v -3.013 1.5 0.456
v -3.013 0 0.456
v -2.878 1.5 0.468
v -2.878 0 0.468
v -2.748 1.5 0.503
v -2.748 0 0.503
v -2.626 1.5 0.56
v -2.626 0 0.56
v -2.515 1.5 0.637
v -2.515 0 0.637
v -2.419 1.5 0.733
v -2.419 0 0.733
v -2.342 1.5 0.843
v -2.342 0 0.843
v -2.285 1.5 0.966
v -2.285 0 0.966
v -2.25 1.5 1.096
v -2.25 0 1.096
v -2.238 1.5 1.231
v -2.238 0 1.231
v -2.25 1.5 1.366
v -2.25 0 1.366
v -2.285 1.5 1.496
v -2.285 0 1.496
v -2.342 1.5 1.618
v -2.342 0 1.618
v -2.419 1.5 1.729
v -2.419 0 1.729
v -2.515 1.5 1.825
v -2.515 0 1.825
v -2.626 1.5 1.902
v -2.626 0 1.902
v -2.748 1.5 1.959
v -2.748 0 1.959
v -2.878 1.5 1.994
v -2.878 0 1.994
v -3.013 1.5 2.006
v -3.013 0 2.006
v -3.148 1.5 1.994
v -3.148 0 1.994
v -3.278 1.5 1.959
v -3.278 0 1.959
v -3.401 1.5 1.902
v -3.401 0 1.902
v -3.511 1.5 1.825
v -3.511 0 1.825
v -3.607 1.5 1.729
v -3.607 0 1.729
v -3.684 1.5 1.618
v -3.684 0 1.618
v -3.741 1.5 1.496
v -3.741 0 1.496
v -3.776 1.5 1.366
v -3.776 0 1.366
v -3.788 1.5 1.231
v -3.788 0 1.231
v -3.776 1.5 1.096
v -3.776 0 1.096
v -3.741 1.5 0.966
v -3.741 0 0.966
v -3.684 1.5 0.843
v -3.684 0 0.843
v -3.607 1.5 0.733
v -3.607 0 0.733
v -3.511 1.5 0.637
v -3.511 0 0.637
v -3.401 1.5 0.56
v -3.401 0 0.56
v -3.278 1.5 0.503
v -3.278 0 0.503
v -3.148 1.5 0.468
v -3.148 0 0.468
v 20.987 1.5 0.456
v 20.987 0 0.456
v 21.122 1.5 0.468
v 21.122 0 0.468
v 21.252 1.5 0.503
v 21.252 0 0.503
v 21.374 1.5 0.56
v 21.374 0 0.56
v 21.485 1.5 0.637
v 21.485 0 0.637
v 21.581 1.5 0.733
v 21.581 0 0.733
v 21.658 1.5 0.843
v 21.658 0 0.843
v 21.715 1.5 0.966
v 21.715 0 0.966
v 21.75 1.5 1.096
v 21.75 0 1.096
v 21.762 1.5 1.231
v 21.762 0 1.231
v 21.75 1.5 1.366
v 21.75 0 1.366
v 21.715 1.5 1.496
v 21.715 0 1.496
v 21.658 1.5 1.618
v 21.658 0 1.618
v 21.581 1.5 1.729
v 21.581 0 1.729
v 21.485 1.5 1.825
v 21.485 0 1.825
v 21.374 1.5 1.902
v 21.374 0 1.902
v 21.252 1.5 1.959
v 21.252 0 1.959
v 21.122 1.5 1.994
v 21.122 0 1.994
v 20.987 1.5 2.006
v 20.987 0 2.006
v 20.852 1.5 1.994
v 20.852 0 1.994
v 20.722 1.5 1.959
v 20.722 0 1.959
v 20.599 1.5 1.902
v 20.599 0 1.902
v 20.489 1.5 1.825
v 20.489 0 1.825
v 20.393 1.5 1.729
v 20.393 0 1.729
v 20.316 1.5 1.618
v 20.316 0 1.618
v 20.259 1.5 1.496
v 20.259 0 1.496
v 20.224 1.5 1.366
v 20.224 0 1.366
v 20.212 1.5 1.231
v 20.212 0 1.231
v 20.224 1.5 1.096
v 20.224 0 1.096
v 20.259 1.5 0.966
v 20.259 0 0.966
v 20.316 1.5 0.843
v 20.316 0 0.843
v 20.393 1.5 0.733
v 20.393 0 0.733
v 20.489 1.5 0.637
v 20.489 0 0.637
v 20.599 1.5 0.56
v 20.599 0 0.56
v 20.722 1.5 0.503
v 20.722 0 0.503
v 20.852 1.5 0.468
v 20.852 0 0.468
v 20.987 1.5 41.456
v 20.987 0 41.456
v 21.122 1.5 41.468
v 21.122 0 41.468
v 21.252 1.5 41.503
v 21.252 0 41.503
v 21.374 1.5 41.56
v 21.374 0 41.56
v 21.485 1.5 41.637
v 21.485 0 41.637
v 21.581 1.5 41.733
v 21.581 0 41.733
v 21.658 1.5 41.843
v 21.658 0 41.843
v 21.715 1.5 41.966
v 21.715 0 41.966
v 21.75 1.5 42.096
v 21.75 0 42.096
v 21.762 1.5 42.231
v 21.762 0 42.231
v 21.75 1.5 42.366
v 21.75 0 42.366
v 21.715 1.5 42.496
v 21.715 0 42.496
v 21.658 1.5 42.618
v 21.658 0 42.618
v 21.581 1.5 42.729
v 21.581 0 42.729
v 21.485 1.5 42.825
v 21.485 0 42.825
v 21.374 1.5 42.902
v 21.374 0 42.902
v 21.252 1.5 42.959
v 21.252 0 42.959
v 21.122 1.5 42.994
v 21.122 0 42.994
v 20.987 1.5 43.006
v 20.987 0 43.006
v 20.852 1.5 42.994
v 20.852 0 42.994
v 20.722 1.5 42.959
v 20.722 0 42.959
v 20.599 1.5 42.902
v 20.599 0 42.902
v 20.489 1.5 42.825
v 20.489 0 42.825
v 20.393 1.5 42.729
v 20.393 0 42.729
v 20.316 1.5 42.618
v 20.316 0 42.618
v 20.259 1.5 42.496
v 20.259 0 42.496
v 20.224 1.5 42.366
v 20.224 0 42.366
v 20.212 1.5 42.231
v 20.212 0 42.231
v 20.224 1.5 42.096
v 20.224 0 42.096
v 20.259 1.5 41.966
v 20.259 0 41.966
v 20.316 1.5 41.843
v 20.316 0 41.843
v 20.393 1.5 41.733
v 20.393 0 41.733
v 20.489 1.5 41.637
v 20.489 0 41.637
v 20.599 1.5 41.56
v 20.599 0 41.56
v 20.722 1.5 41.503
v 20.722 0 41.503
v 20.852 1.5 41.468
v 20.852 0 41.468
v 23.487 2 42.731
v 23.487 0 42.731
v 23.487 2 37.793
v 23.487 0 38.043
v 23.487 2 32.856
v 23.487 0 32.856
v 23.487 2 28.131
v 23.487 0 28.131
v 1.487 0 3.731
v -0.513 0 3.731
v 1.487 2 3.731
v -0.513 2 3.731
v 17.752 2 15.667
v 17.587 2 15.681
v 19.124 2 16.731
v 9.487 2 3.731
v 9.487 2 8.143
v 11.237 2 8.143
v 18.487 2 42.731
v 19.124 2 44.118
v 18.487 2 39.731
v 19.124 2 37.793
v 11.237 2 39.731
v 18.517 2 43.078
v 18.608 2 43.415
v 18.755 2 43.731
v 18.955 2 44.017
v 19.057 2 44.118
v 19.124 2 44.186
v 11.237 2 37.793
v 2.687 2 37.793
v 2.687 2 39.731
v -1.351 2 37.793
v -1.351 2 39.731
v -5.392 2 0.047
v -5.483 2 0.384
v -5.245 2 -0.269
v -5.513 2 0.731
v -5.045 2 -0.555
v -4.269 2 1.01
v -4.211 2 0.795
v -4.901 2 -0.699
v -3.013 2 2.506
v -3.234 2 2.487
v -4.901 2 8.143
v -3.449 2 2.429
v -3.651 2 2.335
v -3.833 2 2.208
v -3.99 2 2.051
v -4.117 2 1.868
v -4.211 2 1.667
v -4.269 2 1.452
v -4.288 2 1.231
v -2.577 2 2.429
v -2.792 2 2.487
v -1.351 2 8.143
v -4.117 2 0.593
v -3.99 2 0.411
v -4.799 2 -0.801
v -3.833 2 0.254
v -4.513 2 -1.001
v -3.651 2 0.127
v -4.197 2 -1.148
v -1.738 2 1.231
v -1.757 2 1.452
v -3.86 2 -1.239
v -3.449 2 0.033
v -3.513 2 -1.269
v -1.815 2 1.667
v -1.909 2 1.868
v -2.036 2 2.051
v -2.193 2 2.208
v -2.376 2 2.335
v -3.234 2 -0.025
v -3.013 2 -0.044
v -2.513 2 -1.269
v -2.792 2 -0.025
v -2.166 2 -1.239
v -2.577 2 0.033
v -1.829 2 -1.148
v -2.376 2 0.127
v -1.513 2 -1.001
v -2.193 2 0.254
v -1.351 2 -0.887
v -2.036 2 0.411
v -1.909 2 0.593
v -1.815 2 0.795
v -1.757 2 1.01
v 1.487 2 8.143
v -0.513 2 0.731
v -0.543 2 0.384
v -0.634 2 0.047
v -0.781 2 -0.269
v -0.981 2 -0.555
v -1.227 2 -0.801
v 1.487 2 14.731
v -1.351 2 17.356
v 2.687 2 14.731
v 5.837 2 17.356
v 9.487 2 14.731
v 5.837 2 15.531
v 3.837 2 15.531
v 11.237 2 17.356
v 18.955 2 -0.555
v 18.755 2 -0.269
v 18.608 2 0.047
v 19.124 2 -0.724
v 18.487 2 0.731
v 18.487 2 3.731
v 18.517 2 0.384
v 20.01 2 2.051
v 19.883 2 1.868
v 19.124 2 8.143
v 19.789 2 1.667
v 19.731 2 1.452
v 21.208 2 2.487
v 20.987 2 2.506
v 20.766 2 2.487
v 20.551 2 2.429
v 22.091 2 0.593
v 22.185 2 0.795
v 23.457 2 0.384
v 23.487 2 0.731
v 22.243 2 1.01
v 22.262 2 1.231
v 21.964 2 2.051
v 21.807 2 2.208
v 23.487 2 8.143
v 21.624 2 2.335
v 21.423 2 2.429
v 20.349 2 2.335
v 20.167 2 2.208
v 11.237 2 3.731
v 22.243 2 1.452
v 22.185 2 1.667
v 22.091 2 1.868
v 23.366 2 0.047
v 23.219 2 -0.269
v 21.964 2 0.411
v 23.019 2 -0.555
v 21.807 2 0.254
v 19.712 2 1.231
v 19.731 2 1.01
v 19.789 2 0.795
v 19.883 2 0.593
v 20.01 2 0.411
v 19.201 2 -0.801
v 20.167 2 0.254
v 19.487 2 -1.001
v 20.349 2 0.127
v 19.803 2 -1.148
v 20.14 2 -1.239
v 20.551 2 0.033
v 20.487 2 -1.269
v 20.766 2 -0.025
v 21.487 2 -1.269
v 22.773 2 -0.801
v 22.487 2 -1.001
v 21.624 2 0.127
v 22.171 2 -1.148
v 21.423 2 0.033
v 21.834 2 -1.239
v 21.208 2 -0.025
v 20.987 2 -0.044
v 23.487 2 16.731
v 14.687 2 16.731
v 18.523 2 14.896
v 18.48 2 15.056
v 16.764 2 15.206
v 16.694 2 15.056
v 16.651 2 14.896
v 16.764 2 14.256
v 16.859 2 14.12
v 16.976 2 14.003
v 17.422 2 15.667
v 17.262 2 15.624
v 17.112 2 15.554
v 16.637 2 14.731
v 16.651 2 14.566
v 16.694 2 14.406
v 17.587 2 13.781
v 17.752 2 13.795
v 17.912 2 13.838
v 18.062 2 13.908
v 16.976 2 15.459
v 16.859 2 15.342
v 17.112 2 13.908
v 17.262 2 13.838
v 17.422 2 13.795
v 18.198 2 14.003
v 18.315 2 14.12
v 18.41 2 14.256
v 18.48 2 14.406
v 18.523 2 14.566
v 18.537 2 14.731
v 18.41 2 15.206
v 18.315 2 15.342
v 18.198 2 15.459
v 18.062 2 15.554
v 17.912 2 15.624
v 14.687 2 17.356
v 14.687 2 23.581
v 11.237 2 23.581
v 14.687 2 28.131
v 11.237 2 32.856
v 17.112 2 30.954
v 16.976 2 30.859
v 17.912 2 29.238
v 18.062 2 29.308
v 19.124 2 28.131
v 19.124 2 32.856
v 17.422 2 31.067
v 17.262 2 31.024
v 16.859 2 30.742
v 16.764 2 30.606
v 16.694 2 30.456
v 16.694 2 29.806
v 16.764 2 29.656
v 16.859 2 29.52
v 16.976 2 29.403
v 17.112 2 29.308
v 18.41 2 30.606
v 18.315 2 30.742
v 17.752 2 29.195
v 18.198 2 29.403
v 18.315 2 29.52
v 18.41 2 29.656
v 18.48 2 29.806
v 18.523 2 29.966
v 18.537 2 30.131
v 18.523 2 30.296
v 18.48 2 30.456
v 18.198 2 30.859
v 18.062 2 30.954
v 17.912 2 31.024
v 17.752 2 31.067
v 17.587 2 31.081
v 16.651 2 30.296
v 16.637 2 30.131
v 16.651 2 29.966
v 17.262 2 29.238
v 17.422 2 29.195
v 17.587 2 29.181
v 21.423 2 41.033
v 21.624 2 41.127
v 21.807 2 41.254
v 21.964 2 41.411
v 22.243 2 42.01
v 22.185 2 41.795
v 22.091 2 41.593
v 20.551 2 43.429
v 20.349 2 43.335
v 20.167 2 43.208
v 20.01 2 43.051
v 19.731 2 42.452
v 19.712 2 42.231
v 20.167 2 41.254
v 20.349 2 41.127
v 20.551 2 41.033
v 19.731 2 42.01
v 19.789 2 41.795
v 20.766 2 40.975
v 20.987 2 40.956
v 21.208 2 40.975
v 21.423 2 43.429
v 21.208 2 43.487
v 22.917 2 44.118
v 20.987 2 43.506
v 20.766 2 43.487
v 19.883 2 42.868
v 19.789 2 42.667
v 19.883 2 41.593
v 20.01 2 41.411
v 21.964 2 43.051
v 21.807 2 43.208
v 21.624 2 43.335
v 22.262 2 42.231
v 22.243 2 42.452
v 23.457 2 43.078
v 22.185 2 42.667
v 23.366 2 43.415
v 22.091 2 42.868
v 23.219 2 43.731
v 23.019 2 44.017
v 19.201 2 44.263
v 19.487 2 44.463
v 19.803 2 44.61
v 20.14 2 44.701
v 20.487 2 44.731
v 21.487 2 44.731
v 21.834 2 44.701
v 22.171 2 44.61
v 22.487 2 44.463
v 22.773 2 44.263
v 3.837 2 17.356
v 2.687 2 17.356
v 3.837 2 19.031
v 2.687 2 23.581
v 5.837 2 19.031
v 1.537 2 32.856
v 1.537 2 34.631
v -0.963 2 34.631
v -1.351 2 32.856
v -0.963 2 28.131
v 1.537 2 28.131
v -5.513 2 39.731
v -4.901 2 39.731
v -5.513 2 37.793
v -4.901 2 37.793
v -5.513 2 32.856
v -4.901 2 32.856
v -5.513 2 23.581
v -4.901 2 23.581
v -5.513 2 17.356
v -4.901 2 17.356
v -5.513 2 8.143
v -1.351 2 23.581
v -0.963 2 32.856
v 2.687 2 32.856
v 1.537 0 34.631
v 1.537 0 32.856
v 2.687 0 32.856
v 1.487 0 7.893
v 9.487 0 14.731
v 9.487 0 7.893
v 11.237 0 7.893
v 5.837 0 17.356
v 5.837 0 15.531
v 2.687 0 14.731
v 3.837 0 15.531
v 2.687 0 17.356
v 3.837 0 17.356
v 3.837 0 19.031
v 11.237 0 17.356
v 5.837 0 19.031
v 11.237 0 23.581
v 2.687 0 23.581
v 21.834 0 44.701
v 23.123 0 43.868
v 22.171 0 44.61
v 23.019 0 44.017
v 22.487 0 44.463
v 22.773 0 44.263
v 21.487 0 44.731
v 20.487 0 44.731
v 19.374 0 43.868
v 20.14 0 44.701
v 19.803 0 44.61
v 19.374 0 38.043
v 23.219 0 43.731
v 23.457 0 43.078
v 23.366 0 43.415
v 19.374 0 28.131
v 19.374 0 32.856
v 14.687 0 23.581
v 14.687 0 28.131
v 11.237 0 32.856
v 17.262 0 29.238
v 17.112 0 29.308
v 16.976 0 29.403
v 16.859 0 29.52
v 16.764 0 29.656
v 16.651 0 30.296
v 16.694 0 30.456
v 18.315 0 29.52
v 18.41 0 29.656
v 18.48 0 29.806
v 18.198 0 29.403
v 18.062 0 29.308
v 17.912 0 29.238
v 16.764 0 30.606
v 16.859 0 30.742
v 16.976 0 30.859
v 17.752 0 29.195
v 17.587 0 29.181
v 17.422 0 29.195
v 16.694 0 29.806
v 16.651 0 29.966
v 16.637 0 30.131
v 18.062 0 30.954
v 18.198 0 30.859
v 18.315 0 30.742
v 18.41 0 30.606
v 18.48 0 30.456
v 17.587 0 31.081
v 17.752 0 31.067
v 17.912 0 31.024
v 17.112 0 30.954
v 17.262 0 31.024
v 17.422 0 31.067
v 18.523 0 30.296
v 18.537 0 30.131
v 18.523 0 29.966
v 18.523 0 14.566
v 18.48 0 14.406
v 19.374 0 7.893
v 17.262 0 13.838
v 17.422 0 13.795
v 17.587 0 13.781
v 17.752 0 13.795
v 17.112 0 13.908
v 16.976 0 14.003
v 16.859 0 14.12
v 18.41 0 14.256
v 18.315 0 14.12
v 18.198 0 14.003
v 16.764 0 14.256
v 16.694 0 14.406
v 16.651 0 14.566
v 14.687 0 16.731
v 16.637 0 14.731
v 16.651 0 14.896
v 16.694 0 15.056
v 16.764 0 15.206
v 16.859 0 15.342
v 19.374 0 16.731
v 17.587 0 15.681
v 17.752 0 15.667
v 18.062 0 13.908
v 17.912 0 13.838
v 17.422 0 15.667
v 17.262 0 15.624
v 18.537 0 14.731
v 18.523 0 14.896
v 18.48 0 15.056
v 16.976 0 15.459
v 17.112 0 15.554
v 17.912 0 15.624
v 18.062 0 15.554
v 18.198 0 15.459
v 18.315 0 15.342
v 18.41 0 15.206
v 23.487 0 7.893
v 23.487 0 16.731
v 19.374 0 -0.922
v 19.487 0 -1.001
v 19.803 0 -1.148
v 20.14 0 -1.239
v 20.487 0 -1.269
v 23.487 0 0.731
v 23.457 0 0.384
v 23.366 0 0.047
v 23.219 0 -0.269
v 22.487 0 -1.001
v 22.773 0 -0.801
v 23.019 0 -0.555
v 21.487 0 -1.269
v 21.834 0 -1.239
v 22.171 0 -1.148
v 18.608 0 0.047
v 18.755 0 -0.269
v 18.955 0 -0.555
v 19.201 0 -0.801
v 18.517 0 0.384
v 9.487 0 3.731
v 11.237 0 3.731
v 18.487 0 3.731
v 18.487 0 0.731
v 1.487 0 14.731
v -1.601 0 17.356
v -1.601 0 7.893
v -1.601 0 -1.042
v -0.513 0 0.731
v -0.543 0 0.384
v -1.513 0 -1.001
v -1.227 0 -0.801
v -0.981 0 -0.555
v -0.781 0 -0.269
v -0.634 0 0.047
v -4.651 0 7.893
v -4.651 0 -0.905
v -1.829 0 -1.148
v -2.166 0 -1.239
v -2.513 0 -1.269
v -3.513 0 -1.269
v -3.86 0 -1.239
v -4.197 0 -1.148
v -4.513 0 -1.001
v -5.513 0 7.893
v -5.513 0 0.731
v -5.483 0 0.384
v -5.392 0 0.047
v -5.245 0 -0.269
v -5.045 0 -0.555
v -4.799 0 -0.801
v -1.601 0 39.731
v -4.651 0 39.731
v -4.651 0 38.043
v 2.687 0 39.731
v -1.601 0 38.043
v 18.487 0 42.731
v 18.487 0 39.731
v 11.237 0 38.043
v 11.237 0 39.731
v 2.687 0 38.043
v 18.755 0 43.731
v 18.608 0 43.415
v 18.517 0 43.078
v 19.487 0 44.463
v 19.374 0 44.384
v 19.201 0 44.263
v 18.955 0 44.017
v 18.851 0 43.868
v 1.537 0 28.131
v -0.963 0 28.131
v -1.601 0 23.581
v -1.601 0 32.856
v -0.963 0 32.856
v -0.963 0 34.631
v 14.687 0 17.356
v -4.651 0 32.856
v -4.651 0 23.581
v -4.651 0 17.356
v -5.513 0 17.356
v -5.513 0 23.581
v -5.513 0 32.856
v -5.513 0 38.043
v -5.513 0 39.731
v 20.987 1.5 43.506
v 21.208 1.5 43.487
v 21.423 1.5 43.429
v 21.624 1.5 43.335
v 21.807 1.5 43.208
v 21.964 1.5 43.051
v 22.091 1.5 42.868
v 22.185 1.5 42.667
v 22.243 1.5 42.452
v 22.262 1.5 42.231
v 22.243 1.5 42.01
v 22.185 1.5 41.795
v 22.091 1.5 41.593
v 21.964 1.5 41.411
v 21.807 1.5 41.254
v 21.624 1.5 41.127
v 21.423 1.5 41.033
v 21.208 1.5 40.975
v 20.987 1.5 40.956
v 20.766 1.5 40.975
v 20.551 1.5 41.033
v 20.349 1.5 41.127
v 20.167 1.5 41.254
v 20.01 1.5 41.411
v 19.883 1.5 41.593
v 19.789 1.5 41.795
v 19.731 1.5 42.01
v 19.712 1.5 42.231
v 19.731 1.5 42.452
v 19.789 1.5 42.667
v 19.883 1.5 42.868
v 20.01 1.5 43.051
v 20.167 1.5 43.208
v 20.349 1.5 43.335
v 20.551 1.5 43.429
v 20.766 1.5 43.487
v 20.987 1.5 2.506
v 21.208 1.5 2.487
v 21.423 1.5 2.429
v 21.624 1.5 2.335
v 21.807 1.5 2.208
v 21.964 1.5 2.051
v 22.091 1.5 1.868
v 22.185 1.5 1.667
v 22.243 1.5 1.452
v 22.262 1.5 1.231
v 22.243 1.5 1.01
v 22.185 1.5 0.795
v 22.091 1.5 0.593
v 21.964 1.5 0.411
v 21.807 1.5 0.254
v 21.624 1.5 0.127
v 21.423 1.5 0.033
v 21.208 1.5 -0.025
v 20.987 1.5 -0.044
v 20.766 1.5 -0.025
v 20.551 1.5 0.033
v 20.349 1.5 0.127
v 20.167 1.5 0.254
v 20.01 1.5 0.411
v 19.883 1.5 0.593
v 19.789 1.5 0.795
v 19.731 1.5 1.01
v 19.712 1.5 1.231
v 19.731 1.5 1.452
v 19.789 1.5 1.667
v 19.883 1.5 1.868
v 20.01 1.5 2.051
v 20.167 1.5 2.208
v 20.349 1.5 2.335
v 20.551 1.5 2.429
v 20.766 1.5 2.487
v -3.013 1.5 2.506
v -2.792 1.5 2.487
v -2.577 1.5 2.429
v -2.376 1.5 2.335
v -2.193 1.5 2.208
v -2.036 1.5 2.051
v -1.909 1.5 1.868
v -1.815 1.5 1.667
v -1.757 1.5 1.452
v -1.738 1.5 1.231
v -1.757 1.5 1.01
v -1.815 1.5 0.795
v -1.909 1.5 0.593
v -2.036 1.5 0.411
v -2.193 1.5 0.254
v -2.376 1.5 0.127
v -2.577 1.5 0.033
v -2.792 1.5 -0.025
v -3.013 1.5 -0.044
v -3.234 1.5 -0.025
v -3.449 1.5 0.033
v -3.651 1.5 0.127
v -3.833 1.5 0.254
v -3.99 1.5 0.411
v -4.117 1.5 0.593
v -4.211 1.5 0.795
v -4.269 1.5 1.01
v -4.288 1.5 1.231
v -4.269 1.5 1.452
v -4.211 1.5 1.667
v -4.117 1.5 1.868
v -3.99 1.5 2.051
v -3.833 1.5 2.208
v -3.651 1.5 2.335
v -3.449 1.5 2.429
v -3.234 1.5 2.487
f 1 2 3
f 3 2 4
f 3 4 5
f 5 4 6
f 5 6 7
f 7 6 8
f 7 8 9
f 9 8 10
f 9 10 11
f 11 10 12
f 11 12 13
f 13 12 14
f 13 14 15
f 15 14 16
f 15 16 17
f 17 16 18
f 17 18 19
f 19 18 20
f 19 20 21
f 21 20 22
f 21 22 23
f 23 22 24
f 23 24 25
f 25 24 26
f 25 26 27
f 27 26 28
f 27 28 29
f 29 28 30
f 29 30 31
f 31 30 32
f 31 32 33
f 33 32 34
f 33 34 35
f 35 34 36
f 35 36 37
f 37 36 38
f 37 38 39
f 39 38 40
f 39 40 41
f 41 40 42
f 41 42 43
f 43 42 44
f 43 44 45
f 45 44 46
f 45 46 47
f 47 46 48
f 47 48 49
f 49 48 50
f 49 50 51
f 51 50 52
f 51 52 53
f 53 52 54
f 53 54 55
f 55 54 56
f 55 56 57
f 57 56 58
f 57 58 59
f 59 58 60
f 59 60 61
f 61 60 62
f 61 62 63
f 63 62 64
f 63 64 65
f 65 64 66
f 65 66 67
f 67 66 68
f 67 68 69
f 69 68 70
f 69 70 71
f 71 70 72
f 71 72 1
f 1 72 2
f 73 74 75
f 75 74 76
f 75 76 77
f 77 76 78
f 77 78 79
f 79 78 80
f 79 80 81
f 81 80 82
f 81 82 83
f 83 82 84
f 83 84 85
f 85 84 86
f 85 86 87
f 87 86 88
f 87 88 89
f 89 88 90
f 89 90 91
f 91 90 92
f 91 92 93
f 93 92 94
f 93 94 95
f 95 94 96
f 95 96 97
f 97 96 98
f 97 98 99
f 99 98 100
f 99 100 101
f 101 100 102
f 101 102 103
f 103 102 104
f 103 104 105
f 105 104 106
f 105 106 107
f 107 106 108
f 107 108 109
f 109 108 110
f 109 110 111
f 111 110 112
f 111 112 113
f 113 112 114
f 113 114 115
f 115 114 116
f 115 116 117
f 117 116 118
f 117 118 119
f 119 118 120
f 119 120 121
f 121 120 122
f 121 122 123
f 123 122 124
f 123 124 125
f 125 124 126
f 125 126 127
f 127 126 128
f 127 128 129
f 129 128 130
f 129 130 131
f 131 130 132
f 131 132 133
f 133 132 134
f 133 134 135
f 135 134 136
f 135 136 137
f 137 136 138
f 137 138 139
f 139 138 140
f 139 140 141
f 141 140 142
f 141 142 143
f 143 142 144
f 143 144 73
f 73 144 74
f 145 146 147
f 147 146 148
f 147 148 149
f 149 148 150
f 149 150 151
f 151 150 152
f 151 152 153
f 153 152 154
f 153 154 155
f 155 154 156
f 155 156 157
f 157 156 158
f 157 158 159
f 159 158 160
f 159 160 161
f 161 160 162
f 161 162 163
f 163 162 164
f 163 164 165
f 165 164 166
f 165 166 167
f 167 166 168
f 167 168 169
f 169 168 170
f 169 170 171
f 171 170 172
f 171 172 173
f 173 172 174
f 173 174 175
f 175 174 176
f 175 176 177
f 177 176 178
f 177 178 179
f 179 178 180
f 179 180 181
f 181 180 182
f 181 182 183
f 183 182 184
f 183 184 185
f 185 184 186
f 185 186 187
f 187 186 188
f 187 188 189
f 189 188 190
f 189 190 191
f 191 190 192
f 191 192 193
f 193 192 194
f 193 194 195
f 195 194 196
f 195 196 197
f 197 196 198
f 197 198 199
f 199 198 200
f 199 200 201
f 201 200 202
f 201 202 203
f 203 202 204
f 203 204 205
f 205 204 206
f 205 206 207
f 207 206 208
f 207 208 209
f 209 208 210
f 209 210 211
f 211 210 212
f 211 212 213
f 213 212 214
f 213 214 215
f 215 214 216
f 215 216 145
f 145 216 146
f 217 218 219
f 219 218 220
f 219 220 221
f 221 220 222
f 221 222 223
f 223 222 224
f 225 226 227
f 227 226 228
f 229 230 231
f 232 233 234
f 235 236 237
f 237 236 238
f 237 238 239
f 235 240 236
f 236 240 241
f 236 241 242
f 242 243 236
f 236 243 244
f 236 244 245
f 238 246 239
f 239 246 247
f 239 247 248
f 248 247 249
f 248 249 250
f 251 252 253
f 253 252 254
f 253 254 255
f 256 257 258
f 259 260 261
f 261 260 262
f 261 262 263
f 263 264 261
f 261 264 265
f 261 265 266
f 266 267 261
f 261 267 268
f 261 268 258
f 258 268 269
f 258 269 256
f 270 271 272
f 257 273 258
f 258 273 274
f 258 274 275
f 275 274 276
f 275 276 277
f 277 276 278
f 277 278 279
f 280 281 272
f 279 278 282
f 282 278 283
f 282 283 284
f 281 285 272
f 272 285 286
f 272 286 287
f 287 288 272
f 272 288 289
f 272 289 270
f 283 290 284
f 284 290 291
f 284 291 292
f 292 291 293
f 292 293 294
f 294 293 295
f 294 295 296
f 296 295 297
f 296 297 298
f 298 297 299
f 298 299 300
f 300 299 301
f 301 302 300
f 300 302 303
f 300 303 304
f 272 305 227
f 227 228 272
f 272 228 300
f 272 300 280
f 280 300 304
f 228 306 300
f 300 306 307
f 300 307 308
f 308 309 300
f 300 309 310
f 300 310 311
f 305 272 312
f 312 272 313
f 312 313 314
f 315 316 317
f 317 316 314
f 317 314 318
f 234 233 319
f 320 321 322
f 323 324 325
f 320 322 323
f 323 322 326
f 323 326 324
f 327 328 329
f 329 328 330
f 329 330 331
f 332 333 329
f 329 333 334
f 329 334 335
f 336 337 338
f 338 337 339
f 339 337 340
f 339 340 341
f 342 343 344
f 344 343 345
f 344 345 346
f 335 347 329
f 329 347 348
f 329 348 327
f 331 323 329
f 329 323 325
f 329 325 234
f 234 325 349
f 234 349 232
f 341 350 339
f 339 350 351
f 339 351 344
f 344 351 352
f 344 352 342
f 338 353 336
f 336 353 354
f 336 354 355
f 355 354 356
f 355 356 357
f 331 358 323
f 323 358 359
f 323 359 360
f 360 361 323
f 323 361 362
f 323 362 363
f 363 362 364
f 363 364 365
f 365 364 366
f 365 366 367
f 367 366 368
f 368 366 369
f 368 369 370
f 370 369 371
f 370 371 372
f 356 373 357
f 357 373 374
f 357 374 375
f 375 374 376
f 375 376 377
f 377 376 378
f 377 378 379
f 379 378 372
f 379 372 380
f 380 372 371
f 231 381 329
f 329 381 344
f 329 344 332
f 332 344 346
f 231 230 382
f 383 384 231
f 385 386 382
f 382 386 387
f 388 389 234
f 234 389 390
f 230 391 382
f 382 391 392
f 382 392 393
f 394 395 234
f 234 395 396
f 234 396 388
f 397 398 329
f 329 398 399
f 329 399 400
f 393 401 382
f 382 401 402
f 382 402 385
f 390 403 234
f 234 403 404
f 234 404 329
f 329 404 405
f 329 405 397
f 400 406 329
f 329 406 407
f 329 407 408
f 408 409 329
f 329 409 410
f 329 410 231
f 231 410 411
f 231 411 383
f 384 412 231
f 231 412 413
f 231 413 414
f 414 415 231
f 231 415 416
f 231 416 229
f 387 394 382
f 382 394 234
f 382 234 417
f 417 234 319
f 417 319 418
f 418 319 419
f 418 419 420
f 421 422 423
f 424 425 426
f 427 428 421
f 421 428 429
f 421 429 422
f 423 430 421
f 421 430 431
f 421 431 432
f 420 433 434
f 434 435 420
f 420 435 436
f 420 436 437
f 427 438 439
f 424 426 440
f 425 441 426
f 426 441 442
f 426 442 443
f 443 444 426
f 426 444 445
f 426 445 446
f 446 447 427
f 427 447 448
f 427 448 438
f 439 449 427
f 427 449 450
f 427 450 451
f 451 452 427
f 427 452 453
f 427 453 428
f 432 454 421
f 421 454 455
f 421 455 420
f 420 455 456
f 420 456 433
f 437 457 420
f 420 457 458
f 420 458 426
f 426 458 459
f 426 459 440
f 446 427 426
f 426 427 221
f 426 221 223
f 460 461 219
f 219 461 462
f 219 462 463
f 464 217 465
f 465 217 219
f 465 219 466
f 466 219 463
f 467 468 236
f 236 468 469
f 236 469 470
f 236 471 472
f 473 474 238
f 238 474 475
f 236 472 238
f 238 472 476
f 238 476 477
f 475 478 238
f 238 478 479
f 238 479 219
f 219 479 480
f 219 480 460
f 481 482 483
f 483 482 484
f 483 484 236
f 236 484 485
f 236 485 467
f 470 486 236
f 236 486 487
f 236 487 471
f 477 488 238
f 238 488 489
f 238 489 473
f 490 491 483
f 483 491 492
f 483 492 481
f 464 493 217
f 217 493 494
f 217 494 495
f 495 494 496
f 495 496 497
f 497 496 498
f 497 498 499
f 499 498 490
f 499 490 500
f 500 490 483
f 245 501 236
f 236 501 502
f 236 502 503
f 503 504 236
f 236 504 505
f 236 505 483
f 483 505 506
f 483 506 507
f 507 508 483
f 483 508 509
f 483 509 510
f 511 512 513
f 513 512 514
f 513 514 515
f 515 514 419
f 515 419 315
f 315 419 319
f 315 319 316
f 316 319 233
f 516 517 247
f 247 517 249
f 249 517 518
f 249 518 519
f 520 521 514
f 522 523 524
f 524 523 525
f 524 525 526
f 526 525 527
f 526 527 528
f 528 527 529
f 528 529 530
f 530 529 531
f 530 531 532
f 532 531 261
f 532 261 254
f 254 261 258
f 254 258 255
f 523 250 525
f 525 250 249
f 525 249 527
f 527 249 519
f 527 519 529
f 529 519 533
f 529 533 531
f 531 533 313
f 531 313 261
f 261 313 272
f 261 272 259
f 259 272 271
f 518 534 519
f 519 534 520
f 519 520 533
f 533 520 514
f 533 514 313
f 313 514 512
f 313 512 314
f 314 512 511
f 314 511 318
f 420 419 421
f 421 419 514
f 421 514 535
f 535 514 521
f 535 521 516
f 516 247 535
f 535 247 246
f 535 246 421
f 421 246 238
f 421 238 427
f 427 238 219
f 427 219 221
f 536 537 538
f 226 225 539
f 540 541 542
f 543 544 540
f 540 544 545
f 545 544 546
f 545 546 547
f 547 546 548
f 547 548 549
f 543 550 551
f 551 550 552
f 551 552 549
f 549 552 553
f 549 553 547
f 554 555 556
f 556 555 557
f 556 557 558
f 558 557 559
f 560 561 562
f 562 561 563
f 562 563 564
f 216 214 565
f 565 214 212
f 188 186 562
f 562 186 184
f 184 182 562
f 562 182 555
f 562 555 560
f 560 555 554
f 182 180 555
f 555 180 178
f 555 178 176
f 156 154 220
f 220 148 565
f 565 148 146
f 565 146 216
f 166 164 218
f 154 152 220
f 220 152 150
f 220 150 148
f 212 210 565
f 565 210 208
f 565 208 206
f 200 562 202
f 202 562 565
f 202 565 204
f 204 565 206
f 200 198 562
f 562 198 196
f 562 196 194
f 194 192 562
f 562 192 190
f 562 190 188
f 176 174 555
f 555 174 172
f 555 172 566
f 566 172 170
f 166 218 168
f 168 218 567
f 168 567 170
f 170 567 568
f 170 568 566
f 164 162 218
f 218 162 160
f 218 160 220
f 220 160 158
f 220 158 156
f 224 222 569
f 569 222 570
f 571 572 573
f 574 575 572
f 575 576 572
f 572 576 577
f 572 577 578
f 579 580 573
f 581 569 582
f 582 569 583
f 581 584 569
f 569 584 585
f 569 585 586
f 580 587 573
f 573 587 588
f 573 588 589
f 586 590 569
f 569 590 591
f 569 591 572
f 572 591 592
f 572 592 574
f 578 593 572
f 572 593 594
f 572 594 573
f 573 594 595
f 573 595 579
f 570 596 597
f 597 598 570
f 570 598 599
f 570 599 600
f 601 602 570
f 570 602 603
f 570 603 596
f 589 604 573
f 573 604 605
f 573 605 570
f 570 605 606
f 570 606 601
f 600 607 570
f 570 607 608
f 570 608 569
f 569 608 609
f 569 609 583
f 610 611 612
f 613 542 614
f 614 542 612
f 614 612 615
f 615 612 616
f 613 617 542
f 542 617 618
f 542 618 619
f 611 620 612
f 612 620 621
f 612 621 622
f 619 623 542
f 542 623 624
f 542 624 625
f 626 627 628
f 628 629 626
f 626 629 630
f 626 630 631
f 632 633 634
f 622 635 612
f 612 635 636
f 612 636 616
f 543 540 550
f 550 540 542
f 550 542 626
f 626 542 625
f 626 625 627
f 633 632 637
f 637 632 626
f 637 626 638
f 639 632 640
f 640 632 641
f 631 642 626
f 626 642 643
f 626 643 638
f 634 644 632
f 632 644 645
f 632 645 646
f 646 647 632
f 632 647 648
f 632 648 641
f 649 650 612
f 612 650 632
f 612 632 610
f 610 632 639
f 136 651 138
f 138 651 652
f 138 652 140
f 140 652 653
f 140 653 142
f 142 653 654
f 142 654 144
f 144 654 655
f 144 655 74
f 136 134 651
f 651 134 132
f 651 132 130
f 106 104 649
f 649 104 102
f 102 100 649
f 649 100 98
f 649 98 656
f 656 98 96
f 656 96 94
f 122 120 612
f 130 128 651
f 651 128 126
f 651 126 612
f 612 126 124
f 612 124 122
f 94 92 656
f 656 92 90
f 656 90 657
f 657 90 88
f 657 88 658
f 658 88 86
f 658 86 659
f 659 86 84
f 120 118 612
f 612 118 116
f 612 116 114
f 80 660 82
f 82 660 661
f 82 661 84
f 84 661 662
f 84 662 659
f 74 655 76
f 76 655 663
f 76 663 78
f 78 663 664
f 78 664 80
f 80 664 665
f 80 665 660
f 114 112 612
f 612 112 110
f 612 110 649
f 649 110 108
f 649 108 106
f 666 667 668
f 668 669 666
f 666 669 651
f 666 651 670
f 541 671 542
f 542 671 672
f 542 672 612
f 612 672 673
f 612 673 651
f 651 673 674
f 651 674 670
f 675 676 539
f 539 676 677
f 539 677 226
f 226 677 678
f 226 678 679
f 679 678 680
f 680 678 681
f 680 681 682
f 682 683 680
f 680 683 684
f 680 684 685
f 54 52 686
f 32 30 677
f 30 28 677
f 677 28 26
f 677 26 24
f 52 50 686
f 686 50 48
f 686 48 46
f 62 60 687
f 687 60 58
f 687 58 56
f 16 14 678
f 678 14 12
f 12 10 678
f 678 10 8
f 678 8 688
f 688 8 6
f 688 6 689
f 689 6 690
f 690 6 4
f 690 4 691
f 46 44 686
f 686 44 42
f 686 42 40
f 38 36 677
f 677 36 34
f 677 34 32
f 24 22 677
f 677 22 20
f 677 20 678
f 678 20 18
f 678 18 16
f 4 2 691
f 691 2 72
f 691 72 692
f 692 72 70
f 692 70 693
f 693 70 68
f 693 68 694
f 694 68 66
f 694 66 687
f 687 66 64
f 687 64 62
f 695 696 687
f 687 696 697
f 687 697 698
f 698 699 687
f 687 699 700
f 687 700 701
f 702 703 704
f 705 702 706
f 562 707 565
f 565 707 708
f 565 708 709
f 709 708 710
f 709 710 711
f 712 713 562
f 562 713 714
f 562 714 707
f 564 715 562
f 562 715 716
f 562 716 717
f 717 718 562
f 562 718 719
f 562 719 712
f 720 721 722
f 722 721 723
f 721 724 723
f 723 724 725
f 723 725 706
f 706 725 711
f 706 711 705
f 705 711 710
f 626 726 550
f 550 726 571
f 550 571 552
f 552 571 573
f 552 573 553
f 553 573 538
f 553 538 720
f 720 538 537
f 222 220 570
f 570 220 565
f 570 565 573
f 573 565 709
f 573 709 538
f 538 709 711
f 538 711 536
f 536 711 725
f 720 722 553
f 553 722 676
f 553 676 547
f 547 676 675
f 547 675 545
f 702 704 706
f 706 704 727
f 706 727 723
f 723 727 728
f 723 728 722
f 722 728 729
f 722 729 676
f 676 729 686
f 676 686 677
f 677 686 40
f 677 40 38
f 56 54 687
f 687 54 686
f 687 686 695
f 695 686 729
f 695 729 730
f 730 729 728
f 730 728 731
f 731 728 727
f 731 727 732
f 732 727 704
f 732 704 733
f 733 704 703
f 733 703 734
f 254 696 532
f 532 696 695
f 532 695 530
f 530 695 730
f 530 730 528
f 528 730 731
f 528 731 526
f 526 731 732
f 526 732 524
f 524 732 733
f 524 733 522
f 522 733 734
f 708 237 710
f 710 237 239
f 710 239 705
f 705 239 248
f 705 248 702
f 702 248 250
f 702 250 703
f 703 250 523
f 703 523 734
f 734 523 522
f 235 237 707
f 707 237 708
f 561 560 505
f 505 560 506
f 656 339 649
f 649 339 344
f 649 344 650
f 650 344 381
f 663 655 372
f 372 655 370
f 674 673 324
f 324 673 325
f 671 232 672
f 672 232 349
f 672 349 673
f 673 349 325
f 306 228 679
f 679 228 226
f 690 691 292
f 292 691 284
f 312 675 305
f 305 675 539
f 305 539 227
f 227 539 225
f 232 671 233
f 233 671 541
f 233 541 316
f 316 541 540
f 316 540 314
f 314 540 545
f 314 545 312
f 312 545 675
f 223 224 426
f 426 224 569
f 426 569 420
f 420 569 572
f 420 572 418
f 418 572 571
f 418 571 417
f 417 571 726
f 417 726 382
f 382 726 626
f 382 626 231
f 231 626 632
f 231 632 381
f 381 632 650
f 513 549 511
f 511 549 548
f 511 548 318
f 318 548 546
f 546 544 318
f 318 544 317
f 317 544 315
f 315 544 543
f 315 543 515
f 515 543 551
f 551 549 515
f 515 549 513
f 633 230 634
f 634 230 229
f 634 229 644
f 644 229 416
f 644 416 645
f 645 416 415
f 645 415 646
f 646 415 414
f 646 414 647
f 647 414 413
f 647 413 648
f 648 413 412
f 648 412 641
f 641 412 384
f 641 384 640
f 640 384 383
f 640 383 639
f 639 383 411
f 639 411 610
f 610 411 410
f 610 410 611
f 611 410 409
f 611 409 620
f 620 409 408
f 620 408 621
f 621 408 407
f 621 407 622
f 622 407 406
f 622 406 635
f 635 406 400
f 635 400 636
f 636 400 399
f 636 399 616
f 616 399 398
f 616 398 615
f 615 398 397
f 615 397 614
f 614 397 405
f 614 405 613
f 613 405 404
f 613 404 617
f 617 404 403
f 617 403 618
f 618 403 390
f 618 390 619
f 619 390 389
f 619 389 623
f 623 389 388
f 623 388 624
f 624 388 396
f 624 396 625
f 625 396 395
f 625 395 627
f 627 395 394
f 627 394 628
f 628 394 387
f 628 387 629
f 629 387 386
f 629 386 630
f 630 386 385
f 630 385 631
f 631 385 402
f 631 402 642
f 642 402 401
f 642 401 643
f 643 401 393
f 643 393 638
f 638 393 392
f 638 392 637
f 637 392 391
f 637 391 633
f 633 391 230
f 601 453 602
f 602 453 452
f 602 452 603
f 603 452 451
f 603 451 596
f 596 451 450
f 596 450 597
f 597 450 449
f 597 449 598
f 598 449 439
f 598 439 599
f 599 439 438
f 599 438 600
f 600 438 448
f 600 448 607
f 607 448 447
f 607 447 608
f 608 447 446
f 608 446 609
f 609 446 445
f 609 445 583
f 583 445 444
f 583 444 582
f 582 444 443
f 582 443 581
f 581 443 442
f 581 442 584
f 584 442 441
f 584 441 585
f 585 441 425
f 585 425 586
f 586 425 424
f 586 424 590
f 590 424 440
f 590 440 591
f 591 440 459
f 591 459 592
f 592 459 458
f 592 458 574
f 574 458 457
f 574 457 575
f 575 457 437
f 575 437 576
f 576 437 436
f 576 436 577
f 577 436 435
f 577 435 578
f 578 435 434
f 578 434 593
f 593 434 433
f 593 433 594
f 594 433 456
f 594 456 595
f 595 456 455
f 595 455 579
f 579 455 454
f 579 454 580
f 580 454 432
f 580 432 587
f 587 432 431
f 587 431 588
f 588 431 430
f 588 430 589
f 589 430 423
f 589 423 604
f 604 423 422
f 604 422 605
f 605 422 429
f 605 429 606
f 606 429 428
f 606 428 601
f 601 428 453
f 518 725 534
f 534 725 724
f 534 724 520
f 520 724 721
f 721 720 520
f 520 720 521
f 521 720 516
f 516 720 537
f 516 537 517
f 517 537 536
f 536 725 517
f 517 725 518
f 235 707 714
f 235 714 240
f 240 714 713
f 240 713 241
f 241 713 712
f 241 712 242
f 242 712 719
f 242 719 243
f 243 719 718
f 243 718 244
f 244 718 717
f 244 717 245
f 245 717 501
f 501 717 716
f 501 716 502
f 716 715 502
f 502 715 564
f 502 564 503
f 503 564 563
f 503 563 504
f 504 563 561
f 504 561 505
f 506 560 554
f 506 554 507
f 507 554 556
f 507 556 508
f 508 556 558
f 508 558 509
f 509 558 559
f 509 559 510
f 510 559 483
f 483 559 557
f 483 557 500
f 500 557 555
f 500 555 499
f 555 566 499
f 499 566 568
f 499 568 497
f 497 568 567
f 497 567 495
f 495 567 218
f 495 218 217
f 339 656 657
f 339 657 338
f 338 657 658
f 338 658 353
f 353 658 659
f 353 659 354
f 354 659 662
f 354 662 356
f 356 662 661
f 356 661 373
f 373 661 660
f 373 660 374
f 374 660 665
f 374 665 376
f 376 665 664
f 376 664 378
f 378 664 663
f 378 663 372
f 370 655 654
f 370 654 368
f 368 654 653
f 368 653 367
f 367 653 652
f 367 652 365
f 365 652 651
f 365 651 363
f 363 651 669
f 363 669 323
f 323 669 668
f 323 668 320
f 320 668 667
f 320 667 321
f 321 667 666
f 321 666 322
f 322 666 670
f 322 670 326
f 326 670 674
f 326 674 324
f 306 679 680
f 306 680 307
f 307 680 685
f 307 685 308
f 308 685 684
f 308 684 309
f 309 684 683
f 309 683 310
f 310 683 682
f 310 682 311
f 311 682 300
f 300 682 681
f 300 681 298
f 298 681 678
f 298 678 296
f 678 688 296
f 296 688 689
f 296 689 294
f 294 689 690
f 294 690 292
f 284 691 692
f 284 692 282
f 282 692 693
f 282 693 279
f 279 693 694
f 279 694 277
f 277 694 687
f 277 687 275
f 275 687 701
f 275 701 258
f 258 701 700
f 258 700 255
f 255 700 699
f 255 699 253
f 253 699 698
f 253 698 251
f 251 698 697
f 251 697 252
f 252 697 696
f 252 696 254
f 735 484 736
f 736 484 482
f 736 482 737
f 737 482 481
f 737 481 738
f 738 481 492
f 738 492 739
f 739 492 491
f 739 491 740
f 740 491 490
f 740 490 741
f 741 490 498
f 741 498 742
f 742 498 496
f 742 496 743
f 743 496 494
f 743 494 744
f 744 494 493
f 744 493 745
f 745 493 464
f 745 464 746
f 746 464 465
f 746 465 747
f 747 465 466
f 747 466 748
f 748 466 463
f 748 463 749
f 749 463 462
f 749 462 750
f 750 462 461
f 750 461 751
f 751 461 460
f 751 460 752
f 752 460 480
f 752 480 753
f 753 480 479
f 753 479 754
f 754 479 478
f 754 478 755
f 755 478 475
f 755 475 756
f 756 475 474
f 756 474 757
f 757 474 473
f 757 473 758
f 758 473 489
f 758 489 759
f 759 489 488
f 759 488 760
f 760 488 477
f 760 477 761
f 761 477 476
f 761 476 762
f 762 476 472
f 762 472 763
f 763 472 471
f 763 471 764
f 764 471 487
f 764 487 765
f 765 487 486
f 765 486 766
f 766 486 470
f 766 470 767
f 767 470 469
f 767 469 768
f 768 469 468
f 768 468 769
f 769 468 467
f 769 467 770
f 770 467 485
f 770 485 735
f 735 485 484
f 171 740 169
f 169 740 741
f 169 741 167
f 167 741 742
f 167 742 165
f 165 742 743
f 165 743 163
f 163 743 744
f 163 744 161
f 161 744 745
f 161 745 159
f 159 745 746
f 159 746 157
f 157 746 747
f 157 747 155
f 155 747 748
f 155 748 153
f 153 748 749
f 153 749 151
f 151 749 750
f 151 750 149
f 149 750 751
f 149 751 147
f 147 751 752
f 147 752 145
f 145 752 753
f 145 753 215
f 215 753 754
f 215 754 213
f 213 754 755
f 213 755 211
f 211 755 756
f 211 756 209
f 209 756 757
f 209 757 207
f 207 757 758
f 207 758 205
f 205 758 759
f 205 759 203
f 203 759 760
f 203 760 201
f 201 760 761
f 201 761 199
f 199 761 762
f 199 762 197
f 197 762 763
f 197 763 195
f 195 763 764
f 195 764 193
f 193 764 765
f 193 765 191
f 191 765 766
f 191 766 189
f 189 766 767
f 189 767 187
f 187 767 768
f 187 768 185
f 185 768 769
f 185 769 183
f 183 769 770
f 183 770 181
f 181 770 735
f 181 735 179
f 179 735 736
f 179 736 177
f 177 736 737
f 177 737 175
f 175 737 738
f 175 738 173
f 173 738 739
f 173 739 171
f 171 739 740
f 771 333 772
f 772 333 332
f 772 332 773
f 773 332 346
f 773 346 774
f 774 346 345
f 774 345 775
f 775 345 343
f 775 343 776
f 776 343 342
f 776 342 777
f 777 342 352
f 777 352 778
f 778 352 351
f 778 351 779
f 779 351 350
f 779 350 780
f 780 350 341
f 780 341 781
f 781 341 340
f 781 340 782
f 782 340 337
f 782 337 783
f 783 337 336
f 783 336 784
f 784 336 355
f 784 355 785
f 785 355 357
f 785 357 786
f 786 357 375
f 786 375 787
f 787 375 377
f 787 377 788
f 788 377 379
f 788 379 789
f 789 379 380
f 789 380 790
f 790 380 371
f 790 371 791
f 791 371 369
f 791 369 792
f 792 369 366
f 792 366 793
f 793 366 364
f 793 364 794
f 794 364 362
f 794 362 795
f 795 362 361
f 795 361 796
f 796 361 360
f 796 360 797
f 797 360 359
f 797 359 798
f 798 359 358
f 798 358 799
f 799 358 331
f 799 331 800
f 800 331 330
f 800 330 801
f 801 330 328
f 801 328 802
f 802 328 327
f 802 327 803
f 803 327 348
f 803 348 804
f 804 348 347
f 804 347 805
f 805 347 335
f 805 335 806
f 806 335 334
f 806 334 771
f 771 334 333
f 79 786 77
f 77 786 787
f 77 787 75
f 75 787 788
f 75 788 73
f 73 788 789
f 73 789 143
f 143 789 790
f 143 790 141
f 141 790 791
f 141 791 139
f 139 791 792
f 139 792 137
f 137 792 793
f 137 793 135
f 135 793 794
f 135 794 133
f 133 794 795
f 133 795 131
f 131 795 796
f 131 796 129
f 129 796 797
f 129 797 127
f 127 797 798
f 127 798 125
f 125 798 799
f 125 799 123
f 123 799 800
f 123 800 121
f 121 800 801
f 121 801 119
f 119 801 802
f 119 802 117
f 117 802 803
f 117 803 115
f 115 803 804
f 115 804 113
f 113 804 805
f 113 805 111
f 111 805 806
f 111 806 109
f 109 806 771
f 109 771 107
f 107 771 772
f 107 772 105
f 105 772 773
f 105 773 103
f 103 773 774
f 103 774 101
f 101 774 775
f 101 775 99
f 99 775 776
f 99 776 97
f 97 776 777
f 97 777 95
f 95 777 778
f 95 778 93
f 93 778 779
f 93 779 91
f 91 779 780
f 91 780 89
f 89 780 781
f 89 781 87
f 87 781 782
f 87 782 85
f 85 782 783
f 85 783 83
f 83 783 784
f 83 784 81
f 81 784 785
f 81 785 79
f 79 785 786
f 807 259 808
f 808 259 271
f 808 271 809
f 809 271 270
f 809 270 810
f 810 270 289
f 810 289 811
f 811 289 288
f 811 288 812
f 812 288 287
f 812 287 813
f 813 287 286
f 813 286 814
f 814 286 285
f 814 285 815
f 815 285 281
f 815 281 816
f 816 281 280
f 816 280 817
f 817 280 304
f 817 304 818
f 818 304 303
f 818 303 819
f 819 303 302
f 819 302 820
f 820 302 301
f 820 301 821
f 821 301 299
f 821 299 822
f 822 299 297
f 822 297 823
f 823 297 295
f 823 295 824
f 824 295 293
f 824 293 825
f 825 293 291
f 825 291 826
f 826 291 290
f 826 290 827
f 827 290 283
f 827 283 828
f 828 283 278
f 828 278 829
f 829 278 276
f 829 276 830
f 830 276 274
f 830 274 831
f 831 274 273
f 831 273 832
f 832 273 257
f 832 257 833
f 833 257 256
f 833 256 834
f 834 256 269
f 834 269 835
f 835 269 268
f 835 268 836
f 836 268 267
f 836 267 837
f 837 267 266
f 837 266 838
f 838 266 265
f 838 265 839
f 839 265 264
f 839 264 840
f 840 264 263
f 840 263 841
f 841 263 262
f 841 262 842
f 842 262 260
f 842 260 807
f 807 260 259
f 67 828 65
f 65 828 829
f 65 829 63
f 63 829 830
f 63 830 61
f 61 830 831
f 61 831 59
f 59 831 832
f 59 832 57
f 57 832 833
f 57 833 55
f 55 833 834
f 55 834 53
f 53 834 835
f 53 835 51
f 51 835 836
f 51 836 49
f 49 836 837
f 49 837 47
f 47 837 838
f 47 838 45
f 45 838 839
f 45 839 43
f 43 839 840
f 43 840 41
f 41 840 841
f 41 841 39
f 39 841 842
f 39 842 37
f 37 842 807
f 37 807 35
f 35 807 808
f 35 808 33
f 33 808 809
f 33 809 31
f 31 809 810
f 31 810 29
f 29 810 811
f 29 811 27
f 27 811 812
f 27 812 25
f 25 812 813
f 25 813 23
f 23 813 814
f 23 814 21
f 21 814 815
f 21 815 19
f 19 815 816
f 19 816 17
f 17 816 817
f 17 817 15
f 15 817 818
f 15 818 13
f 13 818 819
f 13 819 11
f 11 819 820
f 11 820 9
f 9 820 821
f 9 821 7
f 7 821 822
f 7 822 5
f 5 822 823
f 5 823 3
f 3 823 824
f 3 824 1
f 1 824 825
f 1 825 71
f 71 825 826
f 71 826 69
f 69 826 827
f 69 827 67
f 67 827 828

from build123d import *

# Parameters (mm, degrees)
SKETCH1_R           = 0.775
BOSS_EXTRUDE1_DEPTH = 2
SKETCH2_R           = 0.95
SKETCH2_W           = 8
SKETCH2_H           = 11
SKETCH2_W_2         = 8.8
SKETCH2_H_2         = 11.4
SKETCH2_W_3         = 2
SKETCH2_H_3         = 3.5
SKETCH2_W_4         = 2.5
SKETCH2_H_4         = 6.5
CUT_EXTRUDE1_DEPTH  = 3
FILLET1_R           = 2
SKETCH3_R           = 1.275
CUT_EXTRUDE2_DEPTH  = 0.5


with BuildPart() as part:
    # Sketch1 → Boss-Extrude1 (new body)
    with BuildSketch(Plane(origin=(0, 0, 0), x_dir=(1, 0, 0), z_dir=(0, 1, 0))):
        Polygon((18.486983138, -44.730983302), (23.486983138, -44.730983302), (23.486983138, 1.269016698), (18.486983138, 1.269016698), (18.486983138, -3.730983302), (-0.513016862, -3.730983302), (-0.513016862, 1.269016698), (-5.513016862, 1.269016698), (-5.513016862, -39.730983302), (-0.513016862, -39.730983302), (18.486983138, -39.730983302), align=None)
        with Locations((-3.013016862, -1.230983302)):
            Circle(SKETCH1_R, mode=Mode.SUBTRACT)
        with Locations((20.986983138, -1.230983302)):
            Circle(SKETCH1_R, mode=Mode.SUBTRACT)
        with Locations((20.986983138, -42.230983302)):
            Circle(SKETCH1_R, mode=Mode.SUBTRACT)
    extrude(amount=BOSS_EXTRUDE1_DEPTH)

    # Sketch2 → Cut-Extrude1 (cut, through all)
    with BuildSketch(Plane(origin=(0, 2, 0), x_dir=(1, 0, 0), z_dir=(0, 1, 0))):
        with Locations((17.586983138, -14.730983302)):
            Circle(SKETCH2_R)
        with Locations((17.586983138, -30.130983302)):
            Circle(SKETCH2_R)
        with Locations((5.486983138, -9.230983302)):
            Rectangle(SKETCH2_W, SKETCH2_H)
        with Locations((19.086983138, -22.430983302)):
            Rectangle(SKETCH2_W_2, SKETCH2_H_2)
        with Locations((4.836983138, -17.280983302)):
            Rectangle(SKETCH2_W_3, SKETCH2_H_3)
        with Locations((0.286983138, -31.380983302)):
            Rectangle(SKETCH2_W_4, SKETCH2_H_4)
    extrude(amount=-CUT_EXTRUDE1_DEPTH, mode=Mode.SUBTRACT)

    # Fillet1
    fillet1_edges = [part.edges().sort_by_distance(p)[0] for p in [
        (-5.513016862, 1, -1.269016698),
        (-0.513016862, 1, -1.269016698),
        (18.486983138, 1, -1.269016698),
        (23.486983138, 1, -1.269016698),
        (23.486983138, 1, 44.730983302),
        (18.486983138, 1, 44.730983302),
    ]]
    fillet(fillet1_edges, radius=FILLET1_R)

    # Sketch3 → Cut-Extrude2 (cut)
    with BuildSketch(Plane(origin=(0, 2, 0), x_dir=(1, 0, 0), z_dir=(0, 1, 0))):
        with Locations((-3.013016862, -1.230983302)):
            Circle(SKETCH3_R)
        with Locations((20.986983138, -1.230983302)):
            Circle(SKETCH3_R)
        with Locations((20.986983138, -42.230983302)):
            Circle(SKETCH3_R)
    extrude(amount=-CUT_EXTRUDE2_DEPTH, mode=Mode.SUBTRACT)


solid = part.part
